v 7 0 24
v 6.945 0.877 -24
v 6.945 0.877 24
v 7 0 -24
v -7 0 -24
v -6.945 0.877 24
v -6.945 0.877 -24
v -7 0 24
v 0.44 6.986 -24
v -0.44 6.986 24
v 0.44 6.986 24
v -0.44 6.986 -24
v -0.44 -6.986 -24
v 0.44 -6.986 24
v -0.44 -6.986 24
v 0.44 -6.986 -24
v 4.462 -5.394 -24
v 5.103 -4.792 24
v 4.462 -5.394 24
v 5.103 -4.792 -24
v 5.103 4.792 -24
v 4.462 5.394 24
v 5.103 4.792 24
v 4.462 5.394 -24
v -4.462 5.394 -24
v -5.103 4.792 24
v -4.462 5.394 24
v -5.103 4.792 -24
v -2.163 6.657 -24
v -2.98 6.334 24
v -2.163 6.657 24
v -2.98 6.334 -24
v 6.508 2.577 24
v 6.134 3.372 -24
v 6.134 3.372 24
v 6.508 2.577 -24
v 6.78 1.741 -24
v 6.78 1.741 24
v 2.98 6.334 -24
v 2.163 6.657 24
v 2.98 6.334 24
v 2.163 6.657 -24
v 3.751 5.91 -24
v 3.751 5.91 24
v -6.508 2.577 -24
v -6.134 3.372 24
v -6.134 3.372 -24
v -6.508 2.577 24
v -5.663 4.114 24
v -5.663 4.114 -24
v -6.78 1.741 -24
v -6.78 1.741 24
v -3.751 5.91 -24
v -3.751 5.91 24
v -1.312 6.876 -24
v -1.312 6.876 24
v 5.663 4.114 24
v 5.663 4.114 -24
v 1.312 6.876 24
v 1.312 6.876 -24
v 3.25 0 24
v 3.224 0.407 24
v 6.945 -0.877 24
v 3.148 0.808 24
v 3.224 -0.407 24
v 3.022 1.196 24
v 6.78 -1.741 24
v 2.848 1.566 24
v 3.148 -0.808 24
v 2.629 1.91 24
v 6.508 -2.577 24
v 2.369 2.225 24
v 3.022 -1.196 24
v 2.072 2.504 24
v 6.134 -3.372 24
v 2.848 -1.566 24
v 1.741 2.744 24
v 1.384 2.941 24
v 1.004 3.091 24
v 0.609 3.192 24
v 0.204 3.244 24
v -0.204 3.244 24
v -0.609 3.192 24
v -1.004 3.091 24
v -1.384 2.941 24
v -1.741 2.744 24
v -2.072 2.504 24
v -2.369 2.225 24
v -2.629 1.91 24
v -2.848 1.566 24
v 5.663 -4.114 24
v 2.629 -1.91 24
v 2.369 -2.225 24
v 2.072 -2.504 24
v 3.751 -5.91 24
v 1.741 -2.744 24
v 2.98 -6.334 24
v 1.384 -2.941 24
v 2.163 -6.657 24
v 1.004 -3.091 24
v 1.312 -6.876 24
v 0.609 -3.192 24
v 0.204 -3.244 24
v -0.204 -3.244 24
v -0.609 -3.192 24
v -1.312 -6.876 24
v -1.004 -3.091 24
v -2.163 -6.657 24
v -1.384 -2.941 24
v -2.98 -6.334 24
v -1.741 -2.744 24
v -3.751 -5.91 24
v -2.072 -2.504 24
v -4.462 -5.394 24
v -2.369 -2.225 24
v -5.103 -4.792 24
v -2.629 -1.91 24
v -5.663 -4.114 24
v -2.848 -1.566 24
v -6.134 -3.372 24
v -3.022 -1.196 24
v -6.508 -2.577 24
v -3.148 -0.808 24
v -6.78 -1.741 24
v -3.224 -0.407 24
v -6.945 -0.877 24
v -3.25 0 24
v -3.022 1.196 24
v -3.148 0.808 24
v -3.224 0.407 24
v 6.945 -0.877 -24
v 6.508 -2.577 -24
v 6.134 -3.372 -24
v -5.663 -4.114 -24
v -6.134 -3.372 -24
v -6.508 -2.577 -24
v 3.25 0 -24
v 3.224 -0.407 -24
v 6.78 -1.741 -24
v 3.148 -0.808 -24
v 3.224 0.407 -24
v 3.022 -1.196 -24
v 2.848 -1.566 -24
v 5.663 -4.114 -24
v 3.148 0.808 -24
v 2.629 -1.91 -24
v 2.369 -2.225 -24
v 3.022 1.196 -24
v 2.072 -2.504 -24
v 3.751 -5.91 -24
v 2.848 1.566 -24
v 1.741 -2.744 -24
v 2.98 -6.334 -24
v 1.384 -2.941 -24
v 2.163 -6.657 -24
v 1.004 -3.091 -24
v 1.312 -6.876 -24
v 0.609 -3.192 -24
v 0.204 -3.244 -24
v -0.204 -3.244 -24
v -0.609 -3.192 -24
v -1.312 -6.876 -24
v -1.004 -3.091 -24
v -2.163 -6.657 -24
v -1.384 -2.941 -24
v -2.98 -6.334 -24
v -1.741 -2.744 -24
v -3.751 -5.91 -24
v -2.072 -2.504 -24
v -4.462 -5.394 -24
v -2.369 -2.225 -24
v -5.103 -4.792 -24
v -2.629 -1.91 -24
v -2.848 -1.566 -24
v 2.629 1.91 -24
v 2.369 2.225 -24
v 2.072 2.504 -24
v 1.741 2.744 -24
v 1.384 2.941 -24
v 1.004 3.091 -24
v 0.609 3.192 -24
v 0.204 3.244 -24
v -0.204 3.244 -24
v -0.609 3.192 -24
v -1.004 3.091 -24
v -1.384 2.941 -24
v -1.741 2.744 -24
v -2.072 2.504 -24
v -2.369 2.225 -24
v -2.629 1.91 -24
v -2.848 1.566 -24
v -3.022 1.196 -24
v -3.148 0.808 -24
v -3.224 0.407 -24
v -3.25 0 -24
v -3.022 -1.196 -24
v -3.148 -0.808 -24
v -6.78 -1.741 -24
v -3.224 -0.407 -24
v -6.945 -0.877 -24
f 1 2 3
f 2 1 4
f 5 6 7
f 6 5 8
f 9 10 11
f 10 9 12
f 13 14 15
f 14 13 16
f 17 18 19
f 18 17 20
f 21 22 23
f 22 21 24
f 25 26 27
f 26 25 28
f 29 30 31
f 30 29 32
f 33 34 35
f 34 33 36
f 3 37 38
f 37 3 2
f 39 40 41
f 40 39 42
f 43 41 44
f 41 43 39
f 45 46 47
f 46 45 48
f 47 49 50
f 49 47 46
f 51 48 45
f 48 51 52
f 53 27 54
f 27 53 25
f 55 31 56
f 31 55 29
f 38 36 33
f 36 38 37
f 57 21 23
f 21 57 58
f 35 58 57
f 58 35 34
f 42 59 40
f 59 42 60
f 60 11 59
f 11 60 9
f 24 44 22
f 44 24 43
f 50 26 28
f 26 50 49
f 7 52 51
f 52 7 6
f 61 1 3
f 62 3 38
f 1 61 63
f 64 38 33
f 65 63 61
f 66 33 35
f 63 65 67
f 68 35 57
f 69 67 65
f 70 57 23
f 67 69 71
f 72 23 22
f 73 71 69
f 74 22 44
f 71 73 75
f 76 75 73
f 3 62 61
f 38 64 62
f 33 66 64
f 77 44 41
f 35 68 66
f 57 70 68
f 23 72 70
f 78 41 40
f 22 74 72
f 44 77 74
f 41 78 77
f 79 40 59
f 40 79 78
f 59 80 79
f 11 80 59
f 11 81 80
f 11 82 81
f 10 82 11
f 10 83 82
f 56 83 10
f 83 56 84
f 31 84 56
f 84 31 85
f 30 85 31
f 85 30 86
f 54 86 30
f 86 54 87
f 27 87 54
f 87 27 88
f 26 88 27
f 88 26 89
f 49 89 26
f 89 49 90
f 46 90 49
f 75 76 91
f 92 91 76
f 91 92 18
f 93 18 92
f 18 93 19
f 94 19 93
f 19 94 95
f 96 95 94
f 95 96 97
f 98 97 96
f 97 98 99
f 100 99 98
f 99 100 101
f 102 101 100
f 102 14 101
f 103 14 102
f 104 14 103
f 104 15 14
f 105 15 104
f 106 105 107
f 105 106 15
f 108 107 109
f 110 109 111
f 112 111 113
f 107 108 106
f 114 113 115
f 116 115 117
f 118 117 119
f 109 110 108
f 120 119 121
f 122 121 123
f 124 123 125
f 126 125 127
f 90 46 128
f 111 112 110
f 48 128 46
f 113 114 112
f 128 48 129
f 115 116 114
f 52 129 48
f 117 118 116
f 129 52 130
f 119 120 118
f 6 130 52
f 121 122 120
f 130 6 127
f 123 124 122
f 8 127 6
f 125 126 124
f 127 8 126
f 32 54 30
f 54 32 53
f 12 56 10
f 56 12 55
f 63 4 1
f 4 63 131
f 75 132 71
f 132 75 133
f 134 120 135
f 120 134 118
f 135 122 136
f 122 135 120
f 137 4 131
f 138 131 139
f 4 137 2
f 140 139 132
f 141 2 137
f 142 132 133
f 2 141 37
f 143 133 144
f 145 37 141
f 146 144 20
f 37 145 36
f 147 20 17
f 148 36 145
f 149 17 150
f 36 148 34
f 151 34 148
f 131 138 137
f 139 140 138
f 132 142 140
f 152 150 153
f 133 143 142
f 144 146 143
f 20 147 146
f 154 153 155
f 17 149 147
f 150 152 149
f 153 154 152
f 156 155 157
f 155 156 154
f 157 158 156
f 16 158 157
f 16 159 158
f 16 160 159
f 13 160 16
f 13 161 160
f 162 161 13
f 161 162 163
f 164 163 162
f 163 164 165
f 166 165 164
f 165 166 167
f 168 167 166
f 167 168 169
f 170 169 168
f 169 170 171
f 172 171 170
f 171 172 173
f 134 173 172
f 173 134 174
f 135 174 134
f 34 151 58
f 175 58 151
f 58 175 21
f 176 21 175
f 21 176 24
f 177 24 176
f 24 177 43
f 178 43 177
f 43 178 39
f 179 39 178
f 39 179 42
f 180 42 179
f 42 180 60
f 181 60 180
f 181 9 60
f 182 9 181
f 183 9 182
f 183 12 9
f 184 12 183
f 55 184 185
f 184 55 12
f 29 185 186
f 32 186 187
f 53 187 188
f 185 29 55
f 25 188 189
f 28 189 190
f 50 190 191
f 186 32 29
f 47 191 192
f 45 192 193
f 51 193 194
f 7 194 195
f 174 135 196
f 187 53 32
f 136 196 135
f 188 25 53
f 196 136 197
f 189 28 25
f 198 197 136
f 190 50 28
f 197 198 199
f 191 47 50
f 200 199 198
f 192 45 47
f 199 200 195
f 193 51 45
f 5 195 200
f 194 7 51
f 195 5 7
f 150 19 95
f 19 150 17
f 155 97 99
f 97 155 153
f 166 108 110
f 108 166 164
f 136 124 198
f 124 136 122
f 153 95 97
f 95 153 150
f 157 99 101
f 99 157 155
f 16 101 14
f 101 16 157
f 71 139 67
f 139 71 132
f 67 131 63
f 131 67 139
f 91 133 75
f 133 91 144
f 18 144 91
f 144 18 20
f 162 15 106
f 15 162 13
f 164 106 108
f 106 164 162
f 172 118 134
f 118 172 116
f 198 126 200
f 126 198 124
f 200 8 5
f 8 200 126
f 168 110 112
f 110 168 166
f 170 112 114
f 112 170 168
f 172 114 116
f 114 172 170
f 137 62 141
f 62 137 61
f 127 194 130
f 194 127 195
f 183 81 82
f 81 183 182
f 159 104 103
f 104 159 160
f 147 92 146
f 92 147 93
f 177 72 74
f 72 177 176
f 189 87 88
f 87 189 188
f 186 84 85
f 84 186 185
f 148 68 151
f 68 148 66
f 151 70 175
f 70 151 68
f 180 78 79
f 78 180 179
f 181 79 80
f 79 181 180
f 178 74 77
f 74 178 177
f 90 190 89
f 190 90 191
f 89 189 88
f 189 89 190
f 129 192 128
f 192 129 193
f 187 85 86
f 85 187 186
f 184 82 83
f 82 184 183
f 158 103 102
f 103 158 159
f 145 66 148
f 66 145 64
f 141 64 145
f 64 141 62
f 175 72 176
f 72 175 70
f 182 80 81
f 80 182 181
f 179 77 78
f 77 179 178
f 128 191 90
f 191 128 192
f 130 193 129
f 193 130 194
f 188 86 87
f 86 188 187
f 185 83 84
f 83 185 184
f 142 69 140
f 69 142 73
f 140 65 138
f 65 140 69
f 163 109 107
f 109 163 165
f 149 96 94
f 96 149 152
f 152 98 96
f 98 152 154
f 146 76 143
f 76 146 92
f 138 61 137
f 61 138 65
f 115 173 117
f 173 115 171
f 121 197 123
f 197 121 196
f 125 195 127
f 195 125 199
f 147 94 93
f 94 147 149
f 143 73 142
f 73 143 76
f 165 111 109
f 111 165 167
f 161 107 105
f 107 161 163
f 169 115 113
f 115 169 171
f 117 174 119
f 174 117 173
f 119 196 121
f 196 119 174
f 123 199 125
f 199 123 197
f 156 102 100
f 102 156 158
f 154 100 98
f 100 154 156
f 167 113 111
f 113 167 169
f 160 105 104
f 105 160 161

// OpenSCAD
$fn = 50;


difference() {
	union() {
		translate(v = [0, 0, -24.0000000000]) {
			cylinder(h = 48, r = 7.0000000000);
		}
	}
	union() {
		translate(v = [0, 0, -100.0000000000]) {
			cylinder(h = 200, r = 3.2500000000);
		}
	}
}
